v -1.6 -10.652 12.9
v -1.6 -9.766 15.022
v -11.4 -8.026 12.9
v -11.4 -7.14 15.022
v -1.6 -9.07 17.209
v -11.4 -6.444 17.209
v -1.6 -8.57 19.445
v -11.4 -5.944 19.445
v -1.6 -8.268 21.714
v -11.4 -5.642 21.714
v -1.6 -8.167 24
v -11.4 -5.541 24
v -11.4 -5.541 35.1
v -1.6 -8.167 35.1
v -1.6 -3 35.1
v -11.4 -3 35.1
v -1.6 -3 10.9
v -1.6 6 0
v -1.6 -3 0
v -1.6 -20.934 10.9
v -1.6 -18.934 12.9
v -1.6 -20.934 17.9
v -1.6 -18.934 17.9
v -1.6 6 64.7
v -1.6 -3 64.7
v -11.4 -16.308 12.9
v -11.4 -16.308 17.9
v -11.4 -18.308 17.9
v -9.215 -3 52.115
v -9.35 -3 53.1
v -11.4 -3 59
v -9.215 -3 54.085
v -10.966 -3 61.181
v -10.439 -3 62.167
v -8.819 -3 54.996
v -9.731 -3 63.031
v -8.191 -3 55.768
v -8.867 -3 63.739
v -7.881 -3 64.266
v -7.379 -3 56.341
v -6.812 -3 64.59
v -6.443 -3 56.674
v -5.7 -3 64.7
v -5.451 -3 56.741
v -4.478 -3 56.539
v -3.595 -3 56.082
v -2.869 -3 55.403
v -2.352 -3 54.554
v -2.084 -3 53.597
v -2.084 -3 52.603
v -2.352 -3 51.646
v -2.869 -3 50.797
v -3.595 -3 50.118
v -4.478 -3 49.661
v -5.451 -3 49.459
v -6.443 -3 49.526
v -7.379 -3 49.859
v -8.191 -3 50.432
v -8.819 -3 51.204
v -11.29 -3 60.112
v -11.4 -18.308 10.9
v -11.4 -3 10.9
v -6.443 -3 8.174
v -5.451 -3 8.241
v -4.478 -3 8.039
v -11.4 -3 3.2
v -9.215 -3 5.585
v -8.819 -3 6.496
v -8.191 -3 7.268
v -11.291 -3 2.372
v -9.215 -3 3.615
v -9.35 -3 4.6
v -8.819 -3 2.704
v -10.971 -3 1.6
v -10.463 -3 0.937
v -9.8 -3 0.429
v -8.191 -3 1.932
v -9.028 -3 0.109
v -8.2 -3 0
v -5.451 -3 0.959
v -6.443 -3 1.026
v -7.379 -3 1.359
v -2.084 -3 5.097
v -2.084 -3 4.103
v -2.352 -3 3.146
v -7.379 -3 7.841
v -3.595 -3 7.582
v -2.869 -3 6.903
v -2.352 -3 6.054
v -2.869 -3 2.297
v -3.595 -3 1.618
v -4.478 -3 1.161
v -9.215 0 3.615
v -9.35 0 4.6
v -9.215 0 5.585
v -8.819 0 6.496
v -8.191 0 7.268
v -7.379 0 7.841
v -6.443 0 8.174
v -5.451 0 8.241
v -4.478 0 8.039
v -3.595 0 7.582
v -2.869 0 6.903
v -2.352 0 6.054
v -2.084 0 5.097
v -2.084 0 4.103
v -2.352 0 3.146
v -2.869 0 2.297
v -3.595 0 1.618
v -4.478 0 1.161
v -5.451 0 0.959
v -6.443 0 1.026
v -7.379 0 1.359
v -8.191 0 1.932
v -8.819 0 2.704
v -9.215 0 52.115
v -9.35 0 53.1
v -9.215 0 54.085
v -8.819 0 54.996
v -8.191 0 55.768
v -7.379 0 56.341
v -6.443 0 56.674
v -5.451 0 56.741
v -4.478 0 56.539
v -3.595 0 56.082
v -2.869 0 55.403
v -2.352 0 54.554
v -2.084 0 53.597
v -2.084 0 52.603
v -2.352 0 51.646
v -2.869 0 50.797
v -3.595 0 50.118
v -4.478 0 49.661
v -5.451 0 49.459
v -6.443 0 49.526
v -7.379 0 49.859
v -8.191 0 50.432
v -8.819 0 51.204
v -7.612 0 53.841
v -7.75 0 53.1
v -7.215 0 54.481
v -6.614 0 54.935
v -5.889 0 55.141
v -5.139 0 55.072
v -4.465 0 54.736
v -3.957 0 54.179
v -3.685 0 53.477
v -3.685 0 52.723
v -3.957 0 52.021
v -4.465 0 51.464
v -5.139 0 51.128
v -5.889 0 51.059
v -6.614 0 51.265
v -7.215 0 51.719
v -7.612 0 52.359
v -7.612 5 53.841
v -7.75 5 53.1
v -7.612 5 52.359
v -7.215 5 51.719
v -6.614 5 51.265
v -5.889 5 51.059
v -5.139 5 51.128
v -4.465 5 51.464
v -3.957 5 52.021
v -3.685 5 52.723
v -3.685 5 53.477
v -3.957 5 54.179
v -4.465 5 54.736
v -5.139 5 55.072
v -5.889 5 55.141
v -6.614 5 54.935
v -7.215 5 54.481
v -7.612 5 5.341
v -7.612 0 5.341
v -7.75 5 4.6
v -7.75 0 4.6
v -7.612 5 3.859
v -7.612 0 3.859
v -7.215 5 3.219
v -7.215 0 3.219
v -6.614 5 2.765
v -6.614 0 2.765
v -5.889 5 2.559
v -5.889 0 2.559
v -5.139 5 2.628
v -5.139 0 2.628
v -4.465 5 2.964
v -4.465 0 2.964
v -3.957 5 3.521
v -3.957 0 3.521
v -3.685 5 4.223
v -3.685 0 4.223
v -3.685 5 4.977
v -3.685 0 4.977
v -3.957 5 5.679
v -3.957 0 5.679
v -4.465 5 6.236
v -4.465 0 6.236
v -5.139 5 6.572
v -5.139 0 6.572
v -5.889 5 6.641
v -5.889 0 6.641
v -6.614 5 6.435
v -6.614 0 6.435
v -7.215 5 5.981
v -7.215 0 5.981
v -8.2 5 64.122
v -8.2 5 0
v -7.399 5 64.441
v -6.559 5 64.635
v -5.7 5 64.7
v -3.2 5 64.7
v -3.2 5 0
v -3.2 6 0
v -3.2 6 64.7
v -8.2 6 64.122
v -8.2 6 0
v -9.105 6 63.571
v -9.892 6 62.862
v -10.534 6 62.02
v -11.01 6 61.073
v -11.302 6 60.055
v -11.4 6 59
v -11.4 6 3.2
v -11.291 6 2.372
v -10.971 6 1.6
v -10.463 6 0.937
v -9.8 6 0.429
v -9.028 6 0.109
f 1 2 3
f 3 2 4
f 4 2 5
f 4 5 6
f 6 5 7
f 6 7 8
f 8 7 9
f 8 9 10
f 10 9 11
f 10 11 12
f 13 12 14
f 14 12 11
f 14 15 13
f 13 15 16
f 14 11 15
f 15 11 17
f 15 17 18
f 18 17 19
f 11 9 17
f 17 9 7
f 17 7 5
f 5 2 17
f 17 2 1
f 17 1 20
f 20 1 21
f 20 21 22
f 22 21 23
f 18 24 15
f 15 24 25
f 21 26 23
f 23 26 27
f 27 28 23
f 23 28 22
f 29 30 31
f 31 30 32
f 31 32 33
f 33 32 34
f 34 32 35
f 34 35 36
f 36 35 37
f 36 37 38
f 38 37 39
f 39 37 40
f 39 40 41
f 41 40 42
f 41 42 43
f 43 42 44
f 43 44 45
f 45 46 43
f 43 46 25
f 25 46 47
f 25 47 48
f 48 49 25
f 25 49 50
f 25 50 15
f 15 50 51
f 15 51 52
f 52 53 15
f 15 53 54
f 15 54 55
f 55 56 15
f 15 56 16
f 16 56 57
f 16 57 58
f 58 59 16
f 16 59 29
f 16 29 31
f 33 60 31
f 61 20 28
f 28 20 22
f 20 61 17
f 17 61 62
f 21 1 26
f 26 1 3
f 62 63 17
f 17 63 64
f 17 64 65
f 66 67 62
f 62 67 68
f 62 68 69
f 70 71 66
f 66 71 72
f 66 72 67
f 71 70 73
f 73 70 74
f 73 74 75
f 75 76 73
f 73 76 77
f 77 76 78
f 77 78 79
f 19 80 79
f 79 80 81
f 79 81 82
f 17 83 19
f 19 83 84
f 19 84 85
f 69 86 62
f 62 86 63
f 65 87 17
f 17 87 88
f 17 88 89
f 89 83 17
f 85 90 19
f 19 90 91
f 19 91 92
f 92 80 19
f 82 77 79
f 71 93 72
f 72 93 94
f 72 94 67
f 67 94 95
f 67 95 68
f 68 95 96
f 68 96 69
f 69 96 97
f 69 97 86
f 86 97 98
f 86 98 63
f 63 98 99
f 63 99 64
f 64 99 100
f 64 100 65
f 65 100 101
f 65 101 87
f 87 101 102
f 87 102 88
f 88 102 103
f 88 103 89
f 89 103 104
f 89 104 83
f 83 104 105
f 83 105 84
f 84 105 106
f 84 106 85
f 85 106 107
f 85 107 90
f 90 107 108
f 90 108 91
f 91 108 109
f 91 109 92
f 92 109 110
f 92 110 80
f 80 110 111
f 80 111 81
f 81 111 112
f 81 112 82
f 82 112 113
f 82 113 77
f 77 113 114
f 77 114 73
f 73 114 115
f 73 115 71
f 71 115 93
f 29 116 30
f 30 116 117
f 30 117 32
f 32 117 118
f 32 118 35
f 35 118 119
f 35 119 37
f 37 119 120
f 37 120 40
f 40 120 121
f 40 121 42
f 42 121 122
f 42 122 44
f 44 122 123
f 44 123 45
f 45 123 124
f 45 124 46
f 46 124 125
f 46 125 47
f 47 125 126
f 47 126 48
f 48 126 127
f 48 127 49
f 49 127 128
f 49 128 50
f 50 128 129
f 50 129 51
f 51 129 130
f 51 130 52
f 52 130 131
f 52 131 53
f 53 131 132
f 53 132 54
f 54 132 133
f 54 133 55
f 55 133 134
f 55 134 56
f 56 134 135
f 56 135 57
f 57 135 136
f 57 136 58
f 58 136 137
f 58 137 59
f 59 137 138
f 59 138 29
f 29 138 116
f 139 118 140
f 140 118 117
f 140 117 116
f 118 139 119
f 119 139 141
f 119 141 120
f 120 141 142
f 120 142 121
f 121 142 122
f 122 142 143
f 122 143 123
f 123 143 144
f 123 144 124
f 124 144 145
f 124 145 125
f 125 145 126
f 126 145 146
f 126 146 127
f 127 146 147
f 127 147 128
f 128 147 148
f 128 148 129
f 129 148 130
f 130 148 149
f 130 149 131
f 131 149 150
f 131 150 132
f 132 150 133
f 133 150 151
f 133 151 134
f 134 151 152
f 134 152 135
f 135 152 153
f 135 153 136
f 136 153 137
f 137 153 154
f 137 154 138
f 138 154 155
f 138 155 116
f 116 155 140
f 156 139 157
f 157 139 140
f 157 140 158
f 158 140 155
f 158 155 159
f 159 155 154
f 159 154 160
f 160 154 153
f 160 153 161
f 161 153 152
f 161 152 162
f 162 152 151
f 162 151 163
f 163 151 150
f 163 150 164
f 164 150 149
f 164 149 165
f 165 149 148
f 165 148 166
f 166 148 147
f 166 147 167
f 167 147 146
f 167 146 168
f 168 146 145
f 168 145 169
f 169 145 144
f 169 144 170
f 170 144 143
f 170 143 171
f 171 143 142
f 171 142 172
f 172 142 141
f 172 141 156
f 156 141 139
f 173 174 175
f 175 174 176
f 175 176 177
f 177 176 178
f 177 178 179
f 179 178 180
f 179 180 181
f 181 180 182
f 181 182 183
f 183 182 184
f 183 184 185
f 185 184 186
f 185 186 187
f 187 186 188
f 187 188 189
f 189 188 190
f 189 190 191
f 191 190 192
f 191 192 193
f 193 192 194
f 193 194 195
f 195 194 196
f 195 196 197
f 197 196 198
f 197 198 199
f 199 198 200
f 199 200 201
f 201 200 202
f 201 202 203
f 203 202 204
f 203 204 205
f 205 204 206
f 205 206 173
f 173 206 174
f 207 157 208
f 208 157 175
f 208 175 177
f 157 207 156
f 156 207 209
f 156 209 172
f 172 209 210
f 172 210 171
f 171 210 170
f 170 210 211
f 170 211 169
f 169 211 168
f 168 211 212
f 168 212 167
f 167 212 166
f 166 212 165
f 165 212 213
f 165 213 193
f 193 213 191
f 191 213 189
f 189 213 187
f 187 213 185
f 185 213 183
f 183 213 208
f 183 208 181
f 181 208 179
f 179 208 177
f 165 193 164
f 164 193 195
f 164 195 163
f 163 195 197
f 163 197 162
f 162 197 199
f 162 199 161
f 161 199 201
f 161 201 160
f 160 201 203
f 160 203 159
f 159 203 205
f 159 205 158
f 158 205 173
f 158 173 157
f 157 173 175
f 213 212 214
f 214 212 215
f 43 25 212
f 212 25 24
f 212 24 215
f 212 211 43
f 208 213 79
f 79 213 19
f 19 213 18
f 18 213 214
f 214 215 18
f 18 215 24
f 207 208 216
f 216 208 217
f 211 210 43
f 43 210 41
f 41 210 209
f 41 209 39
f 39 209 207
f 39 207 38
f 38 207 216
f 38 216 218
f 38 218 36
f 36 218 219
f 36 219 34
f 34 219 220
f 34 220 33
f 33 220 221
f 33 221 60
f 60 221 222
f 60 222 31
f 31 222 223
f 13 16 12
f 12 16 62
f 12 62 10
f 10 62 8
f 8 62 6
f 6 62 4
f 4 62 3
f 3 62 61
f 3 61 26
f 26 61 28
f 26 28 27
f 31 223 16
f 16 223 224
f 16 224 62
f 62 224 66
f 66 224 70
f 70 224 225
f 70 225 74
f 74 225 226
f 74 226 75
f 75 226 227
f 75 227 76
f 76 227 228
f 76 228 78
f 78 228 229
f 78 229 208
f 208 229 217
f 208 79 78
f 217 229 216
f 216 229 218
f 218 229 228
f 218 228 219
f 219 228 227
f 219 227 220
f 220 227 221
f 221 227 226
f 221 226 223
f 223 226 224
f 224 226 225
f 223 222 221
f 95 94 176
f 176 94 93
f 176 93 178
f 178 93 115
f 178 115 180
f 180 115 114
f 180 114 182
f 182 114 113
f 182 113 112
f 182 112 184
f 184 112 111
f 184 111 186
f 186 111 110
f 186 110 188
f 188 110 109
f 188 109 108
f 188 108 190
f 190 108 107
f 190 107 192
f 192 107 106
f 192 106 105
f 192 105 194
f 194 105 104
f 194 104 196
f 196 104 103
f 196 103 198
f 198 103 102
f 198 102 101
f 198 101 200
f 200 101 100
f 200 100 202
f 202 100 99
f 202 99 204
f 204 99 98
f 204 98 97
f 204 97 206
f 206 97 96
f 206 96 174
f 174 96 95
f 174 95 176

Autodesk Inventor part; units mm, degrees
ref_plane "YZ Plane" through (0, 0, 0) normal (1, 0, 0) x (0, 1, 0)
sketch "Sketch1" plane through (0, 0, 0) normal (0, 1, 0) x (-1, 0, 0)
  line L0 (0, 64.7) -> (11.4, 64.7) construction
  line L1 (11.4, 64.7) -> (11.4, 0) construction
  line L2 (11.4, 0) -> (0, 0) construction
  line L3 (0, 0) -> (0, 64.7) construction
  line L4 (5.7, 64.7) -> (5.7, 0) construction
  line L5 (11.4, 32.35) -> (0, 32.35) construction
  circle A0 centre (5.7, 53.1) radius 1.6 construction
  circle A1 centre (5.7, 53.1) radius 2.05
  circle A2 centre (5.7, 43.4) radius 1.6 construction
  circle A3 centre (5.7, 43.4) radius 2.05 construction
  circle A4 centre (5.7, 33.7) radius 1.6 construction
  circle A5 centre (5.7, 33.7) radius 2.05 construction
  circle A6 centre (5.7, 24) radius 1.6 construction
  circle A7 centre (5.7, 24) radius 2.05 construction
  circle A8 centre (5.7, 14.3) radius 1.6 construction
  circle A9 centre (5.7, 14.3) radius 2.05 construction
  circle A10 centre (5.7, 4.6) radius 1.6 construction
  circle A11 centre (5.7, 4.6) radius 2.05
  line L6 (8.2, 64.7) -> (3.2, 64.7) construction
  line L7 (3.2, 64.7) -> (3.2, 0)
  line L8 (3.2, 0) -> (8.2, 0) construction
  line L9 (8.2, 0) -> (8.2, 64.7)
  circle A12 centre (5.7, 53.1) radius 2.5 construction
  circle A13 centre (5.7, 59) radius 5.7 construction
  circle A14 centre (8.2, 3.2) radius 3.2 construction
  line L10 (0, 0) -> (3.2, 0) construction
  line L11 (1.6, 0) -> (1.6, 64.7)
  circle A15 centre (5.7, 4.6) radius 3.65
  circle A16 centre (5.7, 14.3) radius 3.65 construction
  circle A17 centre (5.7, 24) radius 3.65 construction
  circle A18 centre (5.7, 33.7) radius 3.65 construction
  circle A19 centre (5.7, 43.4) radius 3.65 construction
  circle A20 centre (5.7, 53.1) radius 3.65
  arc A21 (8.2, 0) -> (11.4, 3.2) centre (8.2, 3.2) ccw
  arc A22 (11.4, 59) -> (5.7, 64.7) centre (5.7, 59) ccw
  line L12 (11.4, 3.2) -> (11.4, 59)
  line L13 (1.6, 0) -> (8.2, 0)
  line L14 (1.6, 64.7) -> (5.7, 64.7)
  point P0 (5.7, 54.7)
  point P1 (5.7, 3)
  point P2 (-5.6396, 32.0975)
  point P3 (-5.6396, -32.6025)
  point P4 (-1.0396, 31.5935)
  point P5 (8.2, 64.1225)
  point P6 (8.2, 55.7594)
  point P7 (8.2, 50.4406)
  point P8 (3.2, 0)
  point P9 (3.2, 50.4406)
  point P10 (3.2, 55.7594)
  dimension "d4" = 3.2
  dimension "d5" = 4.1
  dimension "d6" = 9.7
  dimension "d7" = 6.5
  dimension "d8" = 10
  dimension "d9" = 3
  dimension "d10" = 0.9
  dimension "d11" = 3.2
  dimension "d12" = 7.3
extrude "Extrusion1" add sketch "Sketch1" along normal blind 6 contours L7 A20 A15 L13 L11 L14 | L7 A20 | A20 L9 | L9 A22 L12 A21 A15 A20 | L7 A15 | A15 L9
extrude "Extrusion2" add sketch "Sketch1" along normal blind 5 contours L14 A22 L9 A20 L7 | A20 L9 L7 | A20 L9 A15 L7 | A15 L9 L7 | L7 A15 L9 L13
extrude "Extrusion3" add sketch "Sketch1" against normal blind 3 contours L14 A22 L9 A20 L7 | L7 A20 A15 L13 L11 L14 | A20 L9 A15 L7 | L9 A22 L12 A21 A15 A20 | L7 A15 L9 L13
sketch "Sketch2" plane through (0, -3, 0) normal (0, -1, 0) x (1, 0, 0)
  line L0 (-5.7, 53.1) -> (-5.7, 4.6) construction
  circle A0 centre (-5.7, 53.1) radius 4.85 construction
  circle A1 centre (-5.7, 43.4) radius 4.85 construction
  circle A2 centre (-5.7, 33.7) radius 4.85 construction
  circle A3 centre (-5.7, 24) radius 4.85 construction
  circle A4 centre (-5.7, 14.3) radius 4.85 construction
  circle A5 centre (-5.7, 4.6) radius 4.85 construction
  line L1 (-11.4, 3.2) -> (-11.4, 59) construction
  line L2 (0, 35.1) -> (-11.4, 35.1) construction
  line L3 (-11.4, 35.1) -> (-11.4, 12.9) construction
  line L4 (-11.4, 12.9) -> (0, 12.9) construction
  line L5 (0, 12.9) -> (0, 35.1) construction
  line L6 (0, 35.1) -> (-11.4, 12.9) construction
  line L7 (-11.4, 35.1) -> (0, 12.9) construction
  point P0 (0, 0)
  dimension "d20" = 22.2
ref_plane "Work Plane1" through (-11.4, -3, 12.9) normal (0, 0, -1) x (-1, 0, 0)
sketch "Sketch3" plane through (-11.4, -3, 12.9) normal (0, 0, -1) x (-1, 0, 0)
  line L0 (0, 0) -> (-9.8, 0)
  line L1 (0, 0) -> (9.8, 0) construction
  line L2 (9.8, 0) -> (9.8, -2.4) construction
  line L3 (0, 0) -> (0, -15.3081)
  line L4 (0, -15.3081) -> (-9.8, -17.934)
  line L5 (-9.8, -17.934) -> (-9.8, 0)
  line L6 (-9.8, -15.934) -> (0, -13.3081)
  line L7 (9.8, -2.4) -> (0, -5.0259) construction
  line L8 (0, -5.0259) -> (-9.8, -7.6518)
  line L9 (9.8, -2.4) -> (0, -2.4) construction
  line L10 (0, -13.3081) -> (-2.0706, -5.5807) construction
  point P0 (-11.4, 3)
  dimension "d32" = 2.4
  dimension "d34" = 15
  dimension "d35" = 8
  dimension "d36" = 2
extrude "Extrusion4" add sketch "Sketch3" along normal blind 2
extrude "Extrusion5" add sketch "Sketch3" against normal blind 22.2 contours L3 L8 L5 L0
extrude "Extrusion6" add sketch "Sketch3" against normal blind 5 contours L3 L4 L5 L6
ref_plane "Work Plane3" through (-9.3294, -8.5807, 12.9) normal (-0.9659258, 0.258819, 0) x (-0.258819, -0.9659258, 0)
sketch "Sketch5" plane through (-9.3294, -8.5807, 12.9) normal (-0.9659258, 0.258819, 0) x (-0.258819, -0.9659258, 0)
  line L0 (0, 0) -> (0, 22.2) projected
  arc A0 (0, 22.2) -> (0, 0) centre (24.4688, 11.1) ccw
  line L1 (-2.4, 11.1) -> (-2.4, 22.2)
  line L2 (-2.4, 22.2) -> (0, 22.2)
  line L3 (-4.8546, 22.2) -> (0, 22.2) projected
  point P0 (-10.703, -12.9)
  point P1 (0, 11.1)
  dimension "d37" = 2.4
extrude "Extrusion7" cut sketch "Sketch5" along normal through all both and the other way through all
properties part number "Right-Brush-Top"
